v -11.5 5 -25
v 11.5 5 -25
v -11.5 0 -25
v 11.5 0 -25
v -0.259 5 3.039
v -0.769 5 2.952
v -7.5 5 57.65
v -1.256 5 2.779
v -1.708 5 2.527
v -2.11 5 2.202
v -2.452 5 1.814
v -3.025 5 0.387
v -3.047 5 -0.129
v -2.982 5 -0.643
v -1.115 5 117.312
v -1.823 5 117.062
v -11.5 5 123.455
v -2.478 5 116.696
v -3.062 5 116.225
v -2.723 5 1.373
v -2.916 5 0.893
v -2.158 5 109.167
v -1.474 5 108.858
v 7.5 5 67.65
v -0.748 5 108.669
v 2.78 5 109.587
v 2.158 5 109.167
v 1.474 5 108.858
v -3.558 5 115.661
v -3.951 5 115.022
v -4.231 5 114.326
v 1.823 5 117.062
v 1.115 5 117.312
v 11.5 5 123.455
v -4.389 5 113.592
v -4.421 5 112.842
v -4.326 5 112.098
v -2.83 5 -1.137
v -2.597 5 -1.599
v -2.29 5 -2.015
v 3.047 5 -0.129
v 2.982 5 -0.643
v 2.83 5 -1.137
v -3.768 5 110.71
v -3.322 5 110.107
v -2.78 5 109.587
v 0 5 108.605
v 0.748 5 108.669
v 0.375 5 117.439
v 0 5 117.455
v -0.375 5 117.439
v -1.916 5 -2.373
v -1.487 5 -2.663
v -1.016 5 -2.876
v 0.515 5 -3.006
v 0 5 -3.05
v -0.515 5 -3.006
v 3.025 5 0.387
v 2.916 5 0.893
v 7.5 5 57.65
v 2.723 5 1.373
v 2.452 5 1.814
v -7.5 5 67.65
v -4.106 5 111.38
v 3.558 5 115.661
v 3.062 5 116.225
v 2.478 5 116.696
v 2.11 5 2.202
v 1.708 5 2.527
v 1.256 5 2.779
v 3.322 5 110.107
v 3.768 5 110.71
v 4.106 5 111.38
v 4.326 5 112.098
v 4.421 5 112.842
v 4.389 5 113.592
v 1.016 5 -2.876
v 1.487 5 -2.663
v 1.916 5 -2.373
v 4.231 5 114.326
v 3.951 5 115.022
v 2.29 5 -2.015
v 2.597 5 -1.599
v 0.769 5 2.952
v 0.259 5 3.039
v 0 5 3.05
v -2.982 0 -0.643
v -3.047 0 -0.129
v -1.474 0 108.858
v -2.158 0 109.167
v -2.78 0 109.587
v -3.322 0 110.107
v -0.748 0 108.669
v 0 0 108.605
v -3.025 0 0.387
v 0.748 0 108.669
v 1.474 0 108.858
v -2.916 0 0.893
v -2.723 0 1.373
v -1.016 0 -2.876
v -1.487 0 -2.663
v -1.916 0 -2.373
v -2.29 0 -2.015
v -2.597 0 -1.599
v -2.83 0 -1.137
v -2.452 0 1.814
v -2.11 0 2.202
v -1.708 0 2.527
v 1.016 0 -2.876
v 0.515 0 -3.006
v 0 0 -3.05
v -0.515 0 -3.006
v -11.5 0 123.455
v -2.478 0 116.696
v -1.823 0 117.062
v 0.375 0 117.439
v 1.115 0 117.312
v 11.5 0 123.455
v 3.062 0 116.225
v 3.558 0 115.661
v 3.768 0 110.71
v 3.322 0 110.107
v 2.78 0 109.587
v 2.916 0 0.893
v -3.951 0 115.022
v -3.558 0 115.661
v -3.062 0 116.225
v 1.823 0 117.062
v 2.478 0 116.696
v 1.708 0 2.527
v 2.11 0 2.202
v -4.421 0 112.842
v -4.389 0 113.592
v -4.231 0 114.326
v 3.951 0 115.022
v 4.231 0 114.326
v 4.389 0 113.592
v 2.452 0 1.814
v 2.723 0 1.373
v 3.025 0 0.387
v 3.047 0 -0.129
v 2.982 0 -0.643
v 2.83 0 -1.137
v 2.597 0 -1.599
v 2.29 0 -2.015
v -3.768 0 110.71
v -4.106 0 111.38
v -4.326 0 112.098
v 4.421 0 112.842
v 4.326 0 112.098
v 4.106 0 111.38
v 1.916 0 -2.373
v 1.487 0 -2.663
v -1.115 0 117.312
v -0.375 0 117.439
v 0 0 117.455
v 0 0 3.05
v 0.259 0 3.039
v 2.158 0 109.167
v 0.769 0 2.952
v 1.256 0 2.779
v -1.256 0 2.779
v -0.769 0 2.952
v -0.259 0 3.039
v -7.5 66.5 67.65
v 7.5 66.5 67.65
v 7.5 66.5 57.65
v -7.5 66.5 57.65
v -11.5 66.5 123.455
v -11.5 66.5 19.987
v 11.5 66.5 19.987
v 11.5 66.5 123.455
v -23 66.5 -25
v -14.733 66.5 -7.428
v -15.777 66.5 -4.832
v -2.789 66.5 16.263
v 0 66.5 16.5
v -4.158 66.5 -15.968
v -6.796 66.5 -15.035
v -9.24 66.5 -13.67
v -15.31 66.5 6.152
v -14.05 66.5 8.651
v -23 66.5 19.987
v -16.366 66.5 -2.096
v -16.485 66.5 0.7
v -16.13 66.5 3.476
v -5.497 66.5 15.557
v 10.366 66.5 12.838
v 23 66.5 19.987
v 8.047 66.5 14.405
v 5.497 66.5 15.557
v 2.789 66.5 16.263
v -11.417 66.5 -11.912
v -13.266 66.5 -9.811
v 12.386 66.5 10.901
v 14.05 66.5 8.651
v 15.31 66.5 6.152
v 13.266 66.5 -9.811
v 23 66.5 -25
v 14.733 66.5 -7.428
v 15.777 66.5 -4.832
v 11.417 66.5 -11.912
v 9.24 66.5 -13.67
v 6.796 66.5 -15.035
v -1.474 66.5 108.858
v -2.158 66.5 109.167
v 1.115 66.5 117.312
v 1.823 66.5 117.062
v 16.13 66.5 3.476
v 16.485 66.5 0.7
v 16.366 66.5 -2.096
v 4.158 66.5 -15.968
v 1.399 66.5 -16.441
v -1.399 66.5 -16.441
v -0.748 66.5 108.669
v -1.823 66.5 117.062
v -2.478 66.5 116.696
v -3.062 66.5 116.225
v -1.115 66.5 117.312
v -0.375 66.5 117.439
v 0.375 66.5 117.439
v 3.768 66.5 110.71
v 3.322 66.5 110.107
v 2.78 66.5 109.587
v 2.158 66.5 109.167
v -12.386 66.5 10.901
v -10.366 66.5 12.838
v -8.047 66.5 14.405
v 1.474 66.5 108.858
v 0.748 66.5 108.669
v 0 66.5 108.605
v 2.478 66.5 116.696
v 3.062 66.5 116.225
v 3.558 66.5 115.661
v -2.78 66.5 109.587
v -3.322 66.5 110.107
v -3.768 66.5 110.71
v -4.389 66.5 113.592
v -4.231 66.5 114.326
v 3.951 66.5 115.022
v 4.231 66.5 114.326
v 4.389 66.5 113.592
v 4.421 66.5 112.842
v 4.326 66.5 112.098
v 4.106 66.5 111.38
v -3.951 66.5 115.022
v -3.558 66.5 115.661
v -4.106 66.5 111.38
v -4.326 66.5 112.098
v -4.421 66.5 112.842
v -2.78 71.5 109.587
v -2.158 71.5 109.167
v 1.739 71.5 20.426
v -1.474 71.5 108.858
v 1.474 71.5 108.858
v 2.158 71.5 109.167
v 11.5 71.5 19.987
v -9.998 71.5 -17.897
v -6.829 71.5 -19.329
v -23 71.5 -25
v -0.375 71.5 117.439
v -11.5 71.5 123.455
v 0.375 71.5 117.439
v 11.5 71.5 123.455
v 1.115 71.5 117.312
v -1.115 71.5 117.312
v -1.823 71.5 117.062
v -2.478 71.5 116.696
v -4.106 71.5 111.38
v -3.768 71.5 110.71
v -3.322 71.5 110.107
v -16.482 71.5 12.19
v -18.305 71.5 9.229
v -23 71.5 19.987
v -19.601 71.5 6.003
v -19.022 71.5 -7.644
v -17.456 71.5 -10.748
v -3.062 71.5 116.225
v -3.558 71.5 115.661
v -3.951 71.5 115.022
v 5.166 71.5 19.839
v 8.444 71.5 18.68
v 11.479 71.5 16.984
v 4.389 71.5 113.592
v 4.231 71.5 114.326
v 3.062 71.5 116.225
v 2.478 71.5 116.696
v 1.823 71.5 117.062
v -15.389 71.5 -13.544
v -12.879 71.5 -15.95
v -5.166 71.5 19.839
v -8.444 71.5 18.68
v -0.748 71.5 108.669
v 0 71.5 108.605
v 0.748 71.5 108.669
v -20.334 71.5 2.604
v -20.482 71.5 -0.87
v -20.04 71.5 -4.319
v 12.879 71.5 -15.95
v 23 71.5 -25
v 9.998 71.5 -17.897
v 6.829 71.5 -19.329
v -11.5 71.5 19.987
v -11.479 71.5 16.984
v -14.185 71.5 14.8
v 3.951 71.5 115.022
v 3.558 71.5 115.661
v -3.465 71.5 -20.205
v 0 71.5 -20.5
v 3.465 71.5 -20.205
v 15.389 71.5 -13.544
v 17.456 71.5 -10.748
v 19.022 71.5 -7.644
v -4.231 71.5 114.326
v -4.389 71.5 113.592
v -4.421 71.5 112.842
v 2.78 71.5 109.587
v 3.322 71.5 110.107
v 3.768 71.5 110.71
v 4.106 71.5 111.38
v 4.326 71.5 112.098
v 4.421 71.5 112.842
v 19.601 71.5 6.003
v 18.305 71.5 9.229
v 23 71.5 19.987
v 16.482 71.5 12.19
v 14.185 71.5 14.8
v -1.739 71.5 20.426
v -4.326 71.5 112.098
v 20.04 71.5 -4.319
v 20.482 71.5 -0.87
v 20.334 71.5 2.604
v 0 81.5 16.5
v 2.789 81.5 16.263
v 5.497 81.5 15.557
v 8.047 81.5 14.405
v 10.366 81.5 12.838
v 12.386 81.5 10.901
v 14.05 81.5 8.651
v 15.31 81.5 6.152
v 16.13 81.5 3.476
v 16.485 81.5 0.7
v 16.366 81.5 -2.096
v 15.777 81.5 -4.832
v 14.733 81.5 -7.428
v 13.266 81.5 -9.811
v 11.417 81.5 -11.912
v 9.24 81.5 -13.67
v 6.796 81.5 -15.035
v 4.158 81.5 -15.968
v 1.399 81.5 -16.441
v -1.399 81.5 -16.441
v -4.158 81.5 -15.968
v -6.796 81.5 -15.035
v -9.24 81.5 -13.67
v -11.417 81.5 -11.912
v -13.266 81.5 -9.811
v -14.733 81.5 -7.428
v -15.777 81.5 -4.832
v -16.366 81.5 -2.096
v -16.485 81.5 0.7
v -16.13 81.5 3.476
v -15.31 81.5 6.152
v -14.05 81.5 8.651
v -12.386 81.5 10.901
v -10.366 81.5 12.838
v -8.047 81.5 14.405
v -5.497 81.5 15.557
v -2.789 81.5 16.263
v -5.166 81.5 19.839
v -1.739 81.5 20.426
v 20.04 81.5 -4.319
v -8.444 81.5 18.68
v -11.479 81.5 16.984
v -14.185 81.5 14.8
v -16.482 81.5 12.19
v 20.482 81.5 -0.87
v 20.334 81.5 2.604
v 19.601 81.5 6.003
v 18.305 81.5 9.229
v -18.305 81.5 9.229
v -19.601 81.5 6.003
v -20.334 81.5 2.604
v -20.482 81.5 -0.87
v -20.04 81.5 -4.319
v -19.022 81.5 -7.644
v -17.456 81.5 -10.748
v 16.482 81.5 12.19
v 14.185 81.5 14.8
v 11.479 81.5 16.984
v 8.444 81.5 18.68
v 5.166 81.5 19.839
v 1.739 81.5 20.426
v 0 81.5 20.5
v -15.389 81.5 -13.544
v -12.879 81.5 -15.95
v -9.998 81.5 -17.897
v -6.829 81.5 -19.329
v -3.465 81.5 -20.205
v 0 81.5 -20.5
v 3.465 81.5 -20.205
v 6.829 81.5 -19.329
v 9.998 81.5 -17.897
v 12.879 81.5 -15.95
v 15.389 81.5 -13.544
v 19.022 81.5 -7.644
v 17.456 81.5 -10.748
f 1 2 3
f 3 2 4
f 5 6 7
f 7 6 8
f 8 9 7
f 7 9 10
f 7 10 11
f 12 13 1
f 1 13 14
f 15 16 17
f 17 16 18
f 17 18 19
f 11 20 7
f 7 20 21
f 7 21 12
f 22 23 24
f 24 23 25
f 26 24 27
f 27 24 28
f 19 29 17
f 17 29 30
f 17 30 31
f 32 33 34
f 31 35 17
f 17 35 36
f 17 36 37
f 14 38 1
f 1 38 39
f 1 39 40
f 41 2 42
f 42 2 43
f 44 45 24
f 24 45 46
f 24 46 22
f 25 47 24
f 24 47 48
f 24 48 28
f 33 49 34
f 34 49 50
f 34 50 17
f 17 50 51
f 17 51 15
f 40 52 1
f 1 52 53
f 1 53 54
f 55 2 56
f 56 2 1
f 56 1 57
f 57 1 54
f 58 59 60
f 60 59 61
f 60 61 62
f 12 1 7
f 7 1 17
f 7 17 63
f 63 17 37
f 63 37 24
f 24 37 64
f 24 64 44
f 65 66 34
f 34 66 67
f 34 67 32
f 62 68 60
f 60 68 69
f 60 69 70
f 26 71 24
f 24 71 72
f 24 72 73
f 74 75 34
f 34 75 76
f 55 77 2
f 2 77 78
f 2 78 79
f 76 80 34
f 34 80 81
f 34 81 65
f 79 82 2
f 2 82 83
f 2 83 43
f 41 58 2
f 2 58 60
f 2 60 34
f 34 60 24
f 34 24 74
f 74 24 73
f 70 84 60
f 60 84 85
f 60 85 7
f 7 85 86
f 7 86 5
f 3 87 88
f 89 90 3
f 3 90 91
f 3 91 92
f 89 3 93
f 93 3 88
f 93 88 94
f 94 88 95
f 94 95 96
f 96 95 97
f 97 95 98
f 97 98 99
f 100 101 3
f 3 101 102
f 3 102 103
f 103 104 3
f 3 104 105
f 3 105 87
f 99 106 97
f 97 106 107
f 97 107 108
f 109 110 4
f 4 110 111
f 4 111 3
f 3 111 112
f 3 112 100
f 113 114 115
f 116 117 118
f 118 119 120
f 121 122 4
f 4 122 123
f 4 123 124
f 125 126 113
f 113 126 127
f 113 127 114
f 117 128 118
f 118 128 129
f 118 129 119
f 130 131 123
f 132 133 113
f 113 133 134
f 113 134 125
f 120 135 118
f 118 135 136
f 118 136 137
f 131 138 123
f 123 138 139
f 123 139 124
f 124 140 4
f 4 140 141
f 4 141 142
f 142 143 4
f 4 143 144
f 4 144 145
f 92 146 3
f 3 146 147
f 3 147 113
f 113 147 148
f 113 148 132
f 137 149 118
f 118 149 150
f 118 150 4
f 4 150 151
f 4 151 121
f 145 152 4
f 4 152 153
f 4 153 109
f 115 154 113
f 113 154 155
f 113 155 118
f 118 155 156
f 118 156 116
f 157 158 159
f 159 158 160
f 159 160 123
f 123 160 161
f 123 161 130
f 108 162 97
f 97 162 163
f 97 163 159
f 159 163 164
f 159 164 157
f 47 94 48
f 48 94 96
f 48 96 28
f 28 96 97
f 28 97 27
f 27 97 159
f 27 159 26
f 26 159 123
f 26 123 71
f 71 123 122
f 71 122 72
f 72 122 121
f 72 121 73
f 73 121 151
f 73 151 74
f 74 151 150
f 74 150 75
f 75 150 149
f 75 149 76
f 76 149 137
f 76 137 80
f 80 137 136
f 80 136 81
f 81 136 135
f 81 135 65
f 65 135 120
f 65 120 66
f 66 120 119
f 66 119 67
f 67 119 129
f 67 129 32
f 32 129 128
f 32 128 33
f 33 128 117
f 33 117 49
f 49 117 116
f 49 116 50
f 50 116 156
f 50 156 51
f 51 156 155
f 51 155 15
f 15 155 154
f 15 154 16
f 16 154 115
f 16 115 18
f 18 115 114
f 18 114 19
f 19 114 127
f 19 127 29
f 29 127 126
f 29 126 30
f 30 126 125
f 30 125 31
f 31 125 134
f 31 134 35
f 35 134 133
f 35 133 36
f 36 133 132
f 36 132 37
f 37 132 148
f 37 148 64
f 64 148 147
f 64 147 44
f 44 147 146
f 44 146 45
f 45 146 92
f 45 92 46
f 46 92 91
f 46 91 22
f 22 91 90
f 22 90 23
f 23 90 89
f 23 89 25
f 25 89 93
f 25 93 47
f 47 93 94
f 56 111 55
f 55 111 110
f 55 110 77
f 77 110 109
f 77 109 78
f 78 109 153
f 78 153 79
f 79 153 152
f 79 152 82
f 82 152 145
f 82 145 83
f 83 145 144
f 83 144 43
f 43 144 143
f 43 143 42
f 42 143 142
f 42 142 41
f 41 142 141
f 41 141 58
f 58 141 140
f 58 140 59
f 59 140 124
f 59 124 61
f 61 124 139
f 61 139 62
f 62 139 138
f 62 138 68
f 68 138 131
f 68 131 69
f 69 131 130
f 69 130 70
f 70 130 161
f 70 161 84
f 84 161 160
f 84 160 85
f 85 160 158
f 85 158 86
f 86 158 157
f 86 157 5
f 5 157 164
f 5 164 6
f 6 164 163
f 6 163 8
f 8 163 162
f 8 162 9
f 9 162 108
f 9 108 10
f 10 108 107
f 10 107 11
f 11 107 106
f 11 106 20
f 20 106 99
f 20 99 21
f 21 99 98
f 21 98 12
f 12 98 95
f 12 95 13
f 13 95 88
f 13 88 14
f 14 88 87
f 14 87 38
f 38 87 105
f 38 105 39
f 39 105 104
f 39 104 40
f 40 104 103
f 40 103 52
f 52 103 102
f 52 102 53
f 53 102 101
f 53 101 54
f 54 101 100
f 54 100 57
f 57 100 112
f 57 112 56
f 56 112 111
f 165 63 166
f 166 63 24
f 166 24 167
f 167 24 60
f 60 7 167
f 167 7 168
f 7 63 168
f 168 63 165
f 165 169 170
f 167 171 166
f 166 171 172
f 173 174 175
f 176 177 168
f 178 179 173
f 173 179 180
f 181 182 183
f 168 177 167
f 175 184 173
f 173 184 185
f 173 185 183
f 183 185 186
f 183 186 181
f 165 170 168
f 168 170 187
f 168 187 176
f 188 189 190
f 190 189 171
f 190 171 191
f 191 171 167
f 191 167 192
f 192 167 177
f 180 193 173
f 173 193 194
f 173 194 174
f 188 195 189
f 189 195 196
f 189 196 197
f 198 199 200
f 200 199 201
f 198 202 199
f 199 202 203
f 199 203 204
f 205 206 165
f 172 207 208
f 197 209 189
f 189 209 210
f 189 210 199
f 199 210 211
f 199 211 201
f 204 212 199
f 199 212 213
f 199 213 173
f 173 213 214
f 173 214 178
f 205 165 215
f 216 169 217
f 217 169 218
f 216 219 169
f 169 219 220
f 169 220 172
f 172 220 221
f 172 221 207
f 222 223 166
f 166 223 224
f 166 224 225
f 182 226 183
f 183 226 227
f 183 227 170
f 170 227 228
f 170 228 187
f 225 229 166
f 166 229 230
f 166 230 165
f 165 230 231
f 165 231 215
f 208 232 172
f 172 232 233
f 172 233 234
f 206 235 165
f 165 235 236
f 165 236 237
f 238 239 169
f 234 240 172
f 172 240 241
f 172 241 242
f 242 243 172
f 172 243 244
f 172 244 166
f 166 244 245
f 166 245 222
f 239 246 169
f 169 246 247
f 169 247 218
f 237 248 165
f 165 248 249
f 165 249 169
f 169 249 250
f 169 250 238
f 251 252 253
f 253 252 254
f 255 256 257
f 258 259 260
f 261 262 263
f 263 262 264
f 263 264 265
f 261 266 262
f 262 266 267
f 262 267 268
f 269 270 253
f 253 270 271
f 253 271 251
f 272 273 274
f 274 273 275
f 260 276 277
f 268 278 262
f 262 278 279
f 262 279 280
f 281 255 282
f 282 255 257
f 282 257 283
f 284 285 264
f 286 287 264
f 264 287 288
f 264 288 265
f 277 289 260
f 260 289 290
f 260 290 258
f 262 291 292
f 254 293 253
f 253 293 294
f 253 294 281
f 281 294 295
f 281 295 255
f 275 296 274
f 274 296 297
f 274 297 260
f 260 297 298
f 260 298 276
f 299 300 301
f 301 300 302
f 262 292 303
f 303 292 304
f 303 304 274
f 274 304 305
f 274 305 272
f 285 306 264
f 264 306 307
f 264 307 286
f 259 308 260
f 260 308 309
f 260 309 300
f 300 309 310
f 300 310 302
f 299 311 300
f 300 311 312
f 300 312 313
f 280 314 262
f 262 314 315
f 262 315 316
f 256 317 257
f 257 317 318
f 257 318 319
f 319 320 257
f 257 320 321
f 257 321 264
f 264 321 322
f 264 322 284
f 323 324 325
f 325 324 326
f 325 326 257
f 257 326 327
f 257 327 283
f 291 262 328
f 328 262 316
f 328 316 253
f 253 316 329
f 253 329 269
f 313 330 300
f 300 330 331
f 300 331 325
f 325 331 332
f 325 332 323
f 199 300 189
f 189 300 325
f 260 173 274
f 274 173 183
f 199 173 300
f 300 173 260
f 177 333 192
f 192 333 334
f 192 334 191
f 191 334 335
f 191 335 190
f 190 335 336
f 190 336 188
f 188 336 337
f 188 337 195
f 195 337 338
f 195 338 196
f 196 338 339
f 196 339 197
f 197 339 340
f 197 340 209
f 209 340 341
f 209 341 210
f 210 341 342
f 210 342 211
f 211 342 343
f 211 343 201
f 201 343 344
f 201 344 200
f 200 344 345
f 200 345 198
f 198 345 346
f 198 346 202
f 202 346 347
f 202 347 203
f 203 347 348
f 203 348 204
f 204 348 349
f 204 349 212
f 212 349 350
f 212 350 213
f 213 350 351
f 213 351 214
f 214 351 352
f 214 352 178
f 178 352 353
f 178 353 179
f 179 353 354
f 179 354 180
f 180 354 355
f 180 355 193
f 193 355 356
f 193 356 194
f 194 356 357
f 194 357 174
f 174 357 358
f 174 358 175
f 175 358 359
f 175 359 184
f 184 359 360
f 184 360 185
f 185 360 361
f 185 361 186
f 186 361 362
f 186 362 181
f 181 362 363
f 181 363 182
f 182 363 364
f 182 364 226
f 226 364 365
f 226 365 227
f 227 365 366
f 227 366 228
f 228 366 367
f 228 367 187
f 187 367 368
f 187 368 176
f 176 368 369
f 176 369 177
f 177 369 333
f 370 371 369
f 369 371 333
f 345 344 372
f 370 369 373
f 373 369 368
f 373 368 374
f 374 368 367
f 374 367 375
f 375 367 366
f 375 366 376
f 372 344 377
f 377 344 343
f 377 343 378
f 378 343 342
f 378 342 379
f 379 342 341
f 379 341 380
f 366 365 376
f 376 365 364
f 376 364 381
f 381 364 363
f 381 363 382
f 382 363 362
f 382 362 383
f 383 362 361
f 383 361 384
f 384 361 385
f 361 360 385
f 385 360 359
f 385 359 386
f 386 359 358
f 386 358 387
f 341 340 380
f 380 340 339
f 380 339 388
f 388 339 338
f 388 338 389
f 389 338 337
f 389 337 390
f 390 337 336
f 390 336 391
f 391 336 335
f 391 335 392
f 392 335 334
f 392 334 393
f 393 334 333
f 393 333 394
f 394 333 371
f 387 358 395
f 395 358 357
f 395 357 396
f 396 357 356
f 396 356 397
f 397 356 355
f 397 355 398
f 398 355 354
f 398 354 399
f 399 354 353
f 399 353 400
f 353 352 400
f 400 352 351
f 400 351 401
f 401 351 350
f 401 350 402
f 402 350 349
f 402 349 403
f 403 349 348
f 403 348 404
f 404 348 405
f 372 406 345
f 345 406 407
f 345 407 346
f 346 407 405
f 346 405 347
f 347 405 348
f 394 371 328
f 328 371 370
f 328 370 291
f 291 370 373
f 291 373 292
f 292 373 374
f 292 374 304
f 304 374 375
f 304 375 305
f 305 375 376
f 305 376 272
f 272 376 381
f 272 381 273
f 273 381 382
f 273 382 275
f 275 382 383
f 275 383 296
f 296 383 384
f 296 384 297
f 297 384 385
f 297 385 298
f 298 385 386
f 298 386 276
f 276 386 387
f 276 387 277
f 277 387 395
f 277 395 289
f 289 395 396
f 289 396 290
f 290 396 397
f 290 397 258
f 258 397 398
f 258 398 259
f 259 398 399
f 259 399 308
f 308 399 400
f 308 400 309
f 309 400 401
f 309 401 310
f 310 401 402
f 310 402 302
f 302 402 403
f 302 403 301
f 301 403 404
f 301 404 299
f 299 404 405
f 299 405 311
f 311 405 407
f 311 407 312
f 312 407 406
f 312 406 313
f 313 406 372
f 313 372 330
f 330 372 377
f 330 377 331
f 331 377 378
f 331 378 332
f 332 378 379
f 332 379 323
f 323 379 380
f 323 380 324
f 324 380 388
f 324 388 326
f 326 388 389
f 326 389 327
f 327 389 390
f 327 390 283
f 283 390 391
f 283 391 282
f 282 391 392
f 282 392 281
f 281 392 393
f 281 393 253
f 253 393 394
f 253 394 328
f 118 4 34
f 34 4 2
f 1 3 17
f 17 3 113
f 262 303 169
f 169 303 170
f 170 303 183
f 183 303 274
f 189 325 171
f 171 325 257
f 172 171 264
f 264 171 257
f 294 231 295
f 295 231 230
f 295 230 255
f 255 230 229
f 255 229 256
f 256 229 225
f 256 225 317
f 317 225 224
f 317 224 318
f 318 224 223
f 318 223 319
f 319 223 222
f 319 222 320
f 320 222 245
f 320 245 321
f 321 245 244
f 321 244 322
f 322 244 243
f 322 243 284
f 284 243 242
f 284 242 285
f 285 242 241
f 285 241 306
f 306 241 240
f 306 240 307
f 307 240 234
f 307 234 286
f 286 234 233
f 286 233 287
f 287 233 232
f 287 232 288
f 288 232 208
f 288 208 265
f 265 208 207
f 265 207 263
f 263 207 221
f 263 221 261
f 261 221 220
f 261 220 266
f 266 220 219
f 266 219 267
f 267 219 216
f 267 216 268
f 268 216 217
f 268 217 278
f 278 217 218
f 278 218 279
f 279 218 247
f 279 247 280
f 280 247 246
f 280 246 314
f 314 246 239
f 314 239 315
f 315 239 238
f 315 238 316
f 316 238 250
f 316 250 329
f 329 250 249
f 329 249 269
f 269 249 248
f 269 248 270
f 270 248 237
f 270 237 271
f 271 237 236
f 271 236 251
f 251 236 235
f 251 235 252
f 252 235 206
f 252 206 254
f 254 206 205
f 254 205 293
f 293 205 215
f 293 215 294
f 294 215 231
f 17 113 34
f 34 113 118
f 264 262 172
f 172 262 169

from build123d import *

# Parameters (mm, degrees)
SKETCH1_W           = 46
SKETCH1_H           = 160
SKETCH1_R           = 3.05
SKETCH1_R_2         = 4.425
BOSS_EXTRUDE2_DEPTH = 5
SKETCH4_W           = 46
SKETCH4_H           = 160
BOSS_EXTRUDE3_DEPTH = 5
SKETCH5_R           = 16.5
CUT_EXTRUDE2_DEPTH  = 5
SKETCH5_6_R         = 20.5
SKETCH5_6_R_2       = 16.5
BOSS_EXTRUDE5_DEPTH = 10
BOSS_EXTRUDE7_DEPTH = 61.5
SKETCH8_W           = 11.5
SKETCH8_H           = 67.35
SKETCH8_H_2         = 92.65
CUT_EXTRUDE3_DEPTH  = 10
SKETCH10_W          = 11.5
SKETCH10_H          = 115.012630191
CUT_EXTRUDE5_DEPTH  = 10
SKETCH11_R          = 4.425
CUT_EXTRUDE6_DEPTH  = 10
SKETCH12_W          = 11.5
SKETCH12_H          = 11.545
CUT_EXTRUDE7_DEPTH  = 10
SKETCH13_W          = 11.5
SKETCH13_H          = 11.545
CUT_EXTRUDE8_DEPTH  = 10


with BuildPart() as part:
    # Sketch1 → Boss-Extrude2 (new body)
    with BuildSketch(Plane(origin=(0, 0, 0), x_dir=(1, 0, 0), z_dir=(0, 1, 0))):
        with Locations((0, -55)):
            Rectangle(SKETCH1_W, SKETCH1_H)
        with Locations(Location((0, 0, 0), (0, 0, 270))):
            Circle(SKETCH1_R, mode=Mode.SUBTRACT)
        with Locations(Location((0, -113.03, 0), (0, 0, 270))):
            Circle(SKETCH1_R_2, mode=Mode.SUBTRACT)
    extrude(amount=BOSS_EXTRUDE2_DEPTH)



with BuildPart() as body_2:
    # Sketch4 → Boss-Extrude3 (new body)
    with BuildSketch(Plane(origin=(0, 71.5, 0), x_dir=(1, 0, 0), z_dir=(0, 1, 0))):
        with Locations((0, -55)):
            Rectangle(SKETCH4_W, SKETCH4_H)
    extrude(amount=-BOSS_EXTRUDE3_DEPTH)

    # Sketch5 → Cut-Extrude2 (cut)
    with BuildSketch(Plane(origin=(0, 71.5, 0), x_dir=(1, 0, 0), z_dir=(0, 1, 0))):
        with Locations(Location((0, 0, 0), (0, 0, 270))):
            Circle(SKETCH5_R)
    extrude(amount=-CUT_EXTRUDE2_DEPTH, mode=Mode.SUBTRACT)

    # Sketch5<6> → Boss-Extrude5 (add)
    with BuildSketch(Plane(origin=(0, 71.5, 0), x_dir=(1, 0, 0), z_dir=(0, 1, 0))):
        with Locations(Location((0, 0, 0), (0, 0, 90))):
            Circle(SKETCH5_6_R)
        with Locations(Location((0, 0, 0), (0, 0, 270))):
            Circle(SKETCH5_6_R_2, mode=Mode.SUBTRACT)
    extrude(amount=BOSS_EXTRUDE5_DEPTH)


with BuildPart() as part_1:
    add(part.part)

    add(body_2.part)  # Boss-Extrude7 merges body 2
    # Sketch7 → Boss-Extrude7 (add)
    with BuildSketch(Plane(origin=(0, 5, 0), x_dir=(1, 0, 0), z_dir=(0, 1, 0))):
        with BuildLine():
            Line((7.5, -57.65), (-7.5, -57.65))
            Line((-7.5, -57.65), (-7.5, -62.65))
            Line((-7.5, -62.65), (-3, -62.65))
            ThreePointArc((-3, -62.65), (0, -59.65), (3, -62.65))
            Line((3, -62.65), (7.5, -62.65))
            Line((7.5, -62.65), (7.5, -57.65))
        make_face()
        with BuildLine():
            Line((-3, -62.65), (-7.5, -62.65))
            Line((-7.5, -62.65), (-7.5, -67.65))
            Line((-7.5, -67.65), (7.5, -67.65))
            Line((7.5, -67.65), (7.5, -62.65))
            Line((7.5, -62.65), (3, -62.65))
            ThreePointArc((3, -62.65), (0, -65.65), (-3, -62.65))
        make_face()
        with BuildLine():
            ThreePointArc((3, -62.65), (0, -59.65), (-3, -62.65))
            Line((-3, -62.65), (3, -62.65))
        make_face()
        with BuildLine():
            Line((3, -62.65), (-3, -62.65))
            ThreePointArc((-3, -62.65), (0, -65.65), (3, -62.65))
        make_face()
    extrude(amount=BOSS_EXTRUDE7_DEPTH)

    # Sketch8 → Cut-Extrude3 (cut)
    with BuildSketch(Plane(origin=(0, 5, 0), x_dir=(1, 0, 0), z_dir=(0, 1, 0))):
        with Locations((-17.25, -101.325)):
            Rectangle(SKETCH8_W, SKETCH8_H)
        with Locations((-17.25, -21.325)):
            Rectangle(SKETCH8_W, SKETCH8_H_2)
        with Locations((17.25, -101.325)):
            Rectangle(SKETCH8_W, SKETCH8_H)
        with Locations((17.25, -21.325)):
            Rectangle(SKETCH8_W, SKETCH8_H_2)
    extrude(amount=-CUT_EXTRUDE3_DEPTH, mode=Mode.SUBTRACT)

    # Sketch10 → Cut-Extrude5 (cut)
    with BuildSketch(Plane.XZ.offset(-66.5)):
        with Locations((-17.25, 77.493684905)):
            Rectangle(SKETCH10_W, SKETCH10_H)
        with Locations((17.25, 77.493684905)):
            Rectangle(SKETCH10_W, SKETCH10_H)
    extrude(amount=-CUT_EXTRUDE5_DEPTH, mode=Mode.SUBTRACT)

    # Sketch11 → Cut-Extrude6 (cut)
    with BuildSketch(Plane.XZ.offset(-66.5)):
        with Locations(Location((0, 113.03, 0), (0, 0, 90))):
            Circle(SKETCH11_R)
    extrude(amount=-CUT_EXTRUDE6_DEPTH, mode=Mode.SUBTRACT)

    # Sketch12 → Cut-Extrude7 (cut)
    with BuildSketch(Plane(origin=(0, 5, 0), x_dir=(1, 0, 0), z_dir=(0, 1, 0))):
        with Locations((-5.75, -129.2275)):
            Rectangle(SKETCH12_W, SKETCH12_H)
        with Locations((5.75, -129.2275)):
            Rectangle(SKETCH12_W, SKETCH12_H)
    extrude(amount=-CUT_EXTRUDE7_DEPTH, mode=Mode.SUBTRACT)

    # Sketch13 → Cut-Extrude8 (cut)
    with BuildSketch(Plane(origin=(0, 71.5, 0), x_dir=(1, 0, 0), z_dir=(0, 1, 0))):
        with Locations((-5.75, -129.2275)):
            Rectangle(SKETCH13_W, SKETCH13_H)
        with Locations((5.75, -129.2275)):
            Rectangle(SKETCH13_W, SKETCH13_H)
    extrude(amount=-CUT_EXTRUDE8_DEPTH, mode=Mode.SUBTRACT)


solid = part_1.part
